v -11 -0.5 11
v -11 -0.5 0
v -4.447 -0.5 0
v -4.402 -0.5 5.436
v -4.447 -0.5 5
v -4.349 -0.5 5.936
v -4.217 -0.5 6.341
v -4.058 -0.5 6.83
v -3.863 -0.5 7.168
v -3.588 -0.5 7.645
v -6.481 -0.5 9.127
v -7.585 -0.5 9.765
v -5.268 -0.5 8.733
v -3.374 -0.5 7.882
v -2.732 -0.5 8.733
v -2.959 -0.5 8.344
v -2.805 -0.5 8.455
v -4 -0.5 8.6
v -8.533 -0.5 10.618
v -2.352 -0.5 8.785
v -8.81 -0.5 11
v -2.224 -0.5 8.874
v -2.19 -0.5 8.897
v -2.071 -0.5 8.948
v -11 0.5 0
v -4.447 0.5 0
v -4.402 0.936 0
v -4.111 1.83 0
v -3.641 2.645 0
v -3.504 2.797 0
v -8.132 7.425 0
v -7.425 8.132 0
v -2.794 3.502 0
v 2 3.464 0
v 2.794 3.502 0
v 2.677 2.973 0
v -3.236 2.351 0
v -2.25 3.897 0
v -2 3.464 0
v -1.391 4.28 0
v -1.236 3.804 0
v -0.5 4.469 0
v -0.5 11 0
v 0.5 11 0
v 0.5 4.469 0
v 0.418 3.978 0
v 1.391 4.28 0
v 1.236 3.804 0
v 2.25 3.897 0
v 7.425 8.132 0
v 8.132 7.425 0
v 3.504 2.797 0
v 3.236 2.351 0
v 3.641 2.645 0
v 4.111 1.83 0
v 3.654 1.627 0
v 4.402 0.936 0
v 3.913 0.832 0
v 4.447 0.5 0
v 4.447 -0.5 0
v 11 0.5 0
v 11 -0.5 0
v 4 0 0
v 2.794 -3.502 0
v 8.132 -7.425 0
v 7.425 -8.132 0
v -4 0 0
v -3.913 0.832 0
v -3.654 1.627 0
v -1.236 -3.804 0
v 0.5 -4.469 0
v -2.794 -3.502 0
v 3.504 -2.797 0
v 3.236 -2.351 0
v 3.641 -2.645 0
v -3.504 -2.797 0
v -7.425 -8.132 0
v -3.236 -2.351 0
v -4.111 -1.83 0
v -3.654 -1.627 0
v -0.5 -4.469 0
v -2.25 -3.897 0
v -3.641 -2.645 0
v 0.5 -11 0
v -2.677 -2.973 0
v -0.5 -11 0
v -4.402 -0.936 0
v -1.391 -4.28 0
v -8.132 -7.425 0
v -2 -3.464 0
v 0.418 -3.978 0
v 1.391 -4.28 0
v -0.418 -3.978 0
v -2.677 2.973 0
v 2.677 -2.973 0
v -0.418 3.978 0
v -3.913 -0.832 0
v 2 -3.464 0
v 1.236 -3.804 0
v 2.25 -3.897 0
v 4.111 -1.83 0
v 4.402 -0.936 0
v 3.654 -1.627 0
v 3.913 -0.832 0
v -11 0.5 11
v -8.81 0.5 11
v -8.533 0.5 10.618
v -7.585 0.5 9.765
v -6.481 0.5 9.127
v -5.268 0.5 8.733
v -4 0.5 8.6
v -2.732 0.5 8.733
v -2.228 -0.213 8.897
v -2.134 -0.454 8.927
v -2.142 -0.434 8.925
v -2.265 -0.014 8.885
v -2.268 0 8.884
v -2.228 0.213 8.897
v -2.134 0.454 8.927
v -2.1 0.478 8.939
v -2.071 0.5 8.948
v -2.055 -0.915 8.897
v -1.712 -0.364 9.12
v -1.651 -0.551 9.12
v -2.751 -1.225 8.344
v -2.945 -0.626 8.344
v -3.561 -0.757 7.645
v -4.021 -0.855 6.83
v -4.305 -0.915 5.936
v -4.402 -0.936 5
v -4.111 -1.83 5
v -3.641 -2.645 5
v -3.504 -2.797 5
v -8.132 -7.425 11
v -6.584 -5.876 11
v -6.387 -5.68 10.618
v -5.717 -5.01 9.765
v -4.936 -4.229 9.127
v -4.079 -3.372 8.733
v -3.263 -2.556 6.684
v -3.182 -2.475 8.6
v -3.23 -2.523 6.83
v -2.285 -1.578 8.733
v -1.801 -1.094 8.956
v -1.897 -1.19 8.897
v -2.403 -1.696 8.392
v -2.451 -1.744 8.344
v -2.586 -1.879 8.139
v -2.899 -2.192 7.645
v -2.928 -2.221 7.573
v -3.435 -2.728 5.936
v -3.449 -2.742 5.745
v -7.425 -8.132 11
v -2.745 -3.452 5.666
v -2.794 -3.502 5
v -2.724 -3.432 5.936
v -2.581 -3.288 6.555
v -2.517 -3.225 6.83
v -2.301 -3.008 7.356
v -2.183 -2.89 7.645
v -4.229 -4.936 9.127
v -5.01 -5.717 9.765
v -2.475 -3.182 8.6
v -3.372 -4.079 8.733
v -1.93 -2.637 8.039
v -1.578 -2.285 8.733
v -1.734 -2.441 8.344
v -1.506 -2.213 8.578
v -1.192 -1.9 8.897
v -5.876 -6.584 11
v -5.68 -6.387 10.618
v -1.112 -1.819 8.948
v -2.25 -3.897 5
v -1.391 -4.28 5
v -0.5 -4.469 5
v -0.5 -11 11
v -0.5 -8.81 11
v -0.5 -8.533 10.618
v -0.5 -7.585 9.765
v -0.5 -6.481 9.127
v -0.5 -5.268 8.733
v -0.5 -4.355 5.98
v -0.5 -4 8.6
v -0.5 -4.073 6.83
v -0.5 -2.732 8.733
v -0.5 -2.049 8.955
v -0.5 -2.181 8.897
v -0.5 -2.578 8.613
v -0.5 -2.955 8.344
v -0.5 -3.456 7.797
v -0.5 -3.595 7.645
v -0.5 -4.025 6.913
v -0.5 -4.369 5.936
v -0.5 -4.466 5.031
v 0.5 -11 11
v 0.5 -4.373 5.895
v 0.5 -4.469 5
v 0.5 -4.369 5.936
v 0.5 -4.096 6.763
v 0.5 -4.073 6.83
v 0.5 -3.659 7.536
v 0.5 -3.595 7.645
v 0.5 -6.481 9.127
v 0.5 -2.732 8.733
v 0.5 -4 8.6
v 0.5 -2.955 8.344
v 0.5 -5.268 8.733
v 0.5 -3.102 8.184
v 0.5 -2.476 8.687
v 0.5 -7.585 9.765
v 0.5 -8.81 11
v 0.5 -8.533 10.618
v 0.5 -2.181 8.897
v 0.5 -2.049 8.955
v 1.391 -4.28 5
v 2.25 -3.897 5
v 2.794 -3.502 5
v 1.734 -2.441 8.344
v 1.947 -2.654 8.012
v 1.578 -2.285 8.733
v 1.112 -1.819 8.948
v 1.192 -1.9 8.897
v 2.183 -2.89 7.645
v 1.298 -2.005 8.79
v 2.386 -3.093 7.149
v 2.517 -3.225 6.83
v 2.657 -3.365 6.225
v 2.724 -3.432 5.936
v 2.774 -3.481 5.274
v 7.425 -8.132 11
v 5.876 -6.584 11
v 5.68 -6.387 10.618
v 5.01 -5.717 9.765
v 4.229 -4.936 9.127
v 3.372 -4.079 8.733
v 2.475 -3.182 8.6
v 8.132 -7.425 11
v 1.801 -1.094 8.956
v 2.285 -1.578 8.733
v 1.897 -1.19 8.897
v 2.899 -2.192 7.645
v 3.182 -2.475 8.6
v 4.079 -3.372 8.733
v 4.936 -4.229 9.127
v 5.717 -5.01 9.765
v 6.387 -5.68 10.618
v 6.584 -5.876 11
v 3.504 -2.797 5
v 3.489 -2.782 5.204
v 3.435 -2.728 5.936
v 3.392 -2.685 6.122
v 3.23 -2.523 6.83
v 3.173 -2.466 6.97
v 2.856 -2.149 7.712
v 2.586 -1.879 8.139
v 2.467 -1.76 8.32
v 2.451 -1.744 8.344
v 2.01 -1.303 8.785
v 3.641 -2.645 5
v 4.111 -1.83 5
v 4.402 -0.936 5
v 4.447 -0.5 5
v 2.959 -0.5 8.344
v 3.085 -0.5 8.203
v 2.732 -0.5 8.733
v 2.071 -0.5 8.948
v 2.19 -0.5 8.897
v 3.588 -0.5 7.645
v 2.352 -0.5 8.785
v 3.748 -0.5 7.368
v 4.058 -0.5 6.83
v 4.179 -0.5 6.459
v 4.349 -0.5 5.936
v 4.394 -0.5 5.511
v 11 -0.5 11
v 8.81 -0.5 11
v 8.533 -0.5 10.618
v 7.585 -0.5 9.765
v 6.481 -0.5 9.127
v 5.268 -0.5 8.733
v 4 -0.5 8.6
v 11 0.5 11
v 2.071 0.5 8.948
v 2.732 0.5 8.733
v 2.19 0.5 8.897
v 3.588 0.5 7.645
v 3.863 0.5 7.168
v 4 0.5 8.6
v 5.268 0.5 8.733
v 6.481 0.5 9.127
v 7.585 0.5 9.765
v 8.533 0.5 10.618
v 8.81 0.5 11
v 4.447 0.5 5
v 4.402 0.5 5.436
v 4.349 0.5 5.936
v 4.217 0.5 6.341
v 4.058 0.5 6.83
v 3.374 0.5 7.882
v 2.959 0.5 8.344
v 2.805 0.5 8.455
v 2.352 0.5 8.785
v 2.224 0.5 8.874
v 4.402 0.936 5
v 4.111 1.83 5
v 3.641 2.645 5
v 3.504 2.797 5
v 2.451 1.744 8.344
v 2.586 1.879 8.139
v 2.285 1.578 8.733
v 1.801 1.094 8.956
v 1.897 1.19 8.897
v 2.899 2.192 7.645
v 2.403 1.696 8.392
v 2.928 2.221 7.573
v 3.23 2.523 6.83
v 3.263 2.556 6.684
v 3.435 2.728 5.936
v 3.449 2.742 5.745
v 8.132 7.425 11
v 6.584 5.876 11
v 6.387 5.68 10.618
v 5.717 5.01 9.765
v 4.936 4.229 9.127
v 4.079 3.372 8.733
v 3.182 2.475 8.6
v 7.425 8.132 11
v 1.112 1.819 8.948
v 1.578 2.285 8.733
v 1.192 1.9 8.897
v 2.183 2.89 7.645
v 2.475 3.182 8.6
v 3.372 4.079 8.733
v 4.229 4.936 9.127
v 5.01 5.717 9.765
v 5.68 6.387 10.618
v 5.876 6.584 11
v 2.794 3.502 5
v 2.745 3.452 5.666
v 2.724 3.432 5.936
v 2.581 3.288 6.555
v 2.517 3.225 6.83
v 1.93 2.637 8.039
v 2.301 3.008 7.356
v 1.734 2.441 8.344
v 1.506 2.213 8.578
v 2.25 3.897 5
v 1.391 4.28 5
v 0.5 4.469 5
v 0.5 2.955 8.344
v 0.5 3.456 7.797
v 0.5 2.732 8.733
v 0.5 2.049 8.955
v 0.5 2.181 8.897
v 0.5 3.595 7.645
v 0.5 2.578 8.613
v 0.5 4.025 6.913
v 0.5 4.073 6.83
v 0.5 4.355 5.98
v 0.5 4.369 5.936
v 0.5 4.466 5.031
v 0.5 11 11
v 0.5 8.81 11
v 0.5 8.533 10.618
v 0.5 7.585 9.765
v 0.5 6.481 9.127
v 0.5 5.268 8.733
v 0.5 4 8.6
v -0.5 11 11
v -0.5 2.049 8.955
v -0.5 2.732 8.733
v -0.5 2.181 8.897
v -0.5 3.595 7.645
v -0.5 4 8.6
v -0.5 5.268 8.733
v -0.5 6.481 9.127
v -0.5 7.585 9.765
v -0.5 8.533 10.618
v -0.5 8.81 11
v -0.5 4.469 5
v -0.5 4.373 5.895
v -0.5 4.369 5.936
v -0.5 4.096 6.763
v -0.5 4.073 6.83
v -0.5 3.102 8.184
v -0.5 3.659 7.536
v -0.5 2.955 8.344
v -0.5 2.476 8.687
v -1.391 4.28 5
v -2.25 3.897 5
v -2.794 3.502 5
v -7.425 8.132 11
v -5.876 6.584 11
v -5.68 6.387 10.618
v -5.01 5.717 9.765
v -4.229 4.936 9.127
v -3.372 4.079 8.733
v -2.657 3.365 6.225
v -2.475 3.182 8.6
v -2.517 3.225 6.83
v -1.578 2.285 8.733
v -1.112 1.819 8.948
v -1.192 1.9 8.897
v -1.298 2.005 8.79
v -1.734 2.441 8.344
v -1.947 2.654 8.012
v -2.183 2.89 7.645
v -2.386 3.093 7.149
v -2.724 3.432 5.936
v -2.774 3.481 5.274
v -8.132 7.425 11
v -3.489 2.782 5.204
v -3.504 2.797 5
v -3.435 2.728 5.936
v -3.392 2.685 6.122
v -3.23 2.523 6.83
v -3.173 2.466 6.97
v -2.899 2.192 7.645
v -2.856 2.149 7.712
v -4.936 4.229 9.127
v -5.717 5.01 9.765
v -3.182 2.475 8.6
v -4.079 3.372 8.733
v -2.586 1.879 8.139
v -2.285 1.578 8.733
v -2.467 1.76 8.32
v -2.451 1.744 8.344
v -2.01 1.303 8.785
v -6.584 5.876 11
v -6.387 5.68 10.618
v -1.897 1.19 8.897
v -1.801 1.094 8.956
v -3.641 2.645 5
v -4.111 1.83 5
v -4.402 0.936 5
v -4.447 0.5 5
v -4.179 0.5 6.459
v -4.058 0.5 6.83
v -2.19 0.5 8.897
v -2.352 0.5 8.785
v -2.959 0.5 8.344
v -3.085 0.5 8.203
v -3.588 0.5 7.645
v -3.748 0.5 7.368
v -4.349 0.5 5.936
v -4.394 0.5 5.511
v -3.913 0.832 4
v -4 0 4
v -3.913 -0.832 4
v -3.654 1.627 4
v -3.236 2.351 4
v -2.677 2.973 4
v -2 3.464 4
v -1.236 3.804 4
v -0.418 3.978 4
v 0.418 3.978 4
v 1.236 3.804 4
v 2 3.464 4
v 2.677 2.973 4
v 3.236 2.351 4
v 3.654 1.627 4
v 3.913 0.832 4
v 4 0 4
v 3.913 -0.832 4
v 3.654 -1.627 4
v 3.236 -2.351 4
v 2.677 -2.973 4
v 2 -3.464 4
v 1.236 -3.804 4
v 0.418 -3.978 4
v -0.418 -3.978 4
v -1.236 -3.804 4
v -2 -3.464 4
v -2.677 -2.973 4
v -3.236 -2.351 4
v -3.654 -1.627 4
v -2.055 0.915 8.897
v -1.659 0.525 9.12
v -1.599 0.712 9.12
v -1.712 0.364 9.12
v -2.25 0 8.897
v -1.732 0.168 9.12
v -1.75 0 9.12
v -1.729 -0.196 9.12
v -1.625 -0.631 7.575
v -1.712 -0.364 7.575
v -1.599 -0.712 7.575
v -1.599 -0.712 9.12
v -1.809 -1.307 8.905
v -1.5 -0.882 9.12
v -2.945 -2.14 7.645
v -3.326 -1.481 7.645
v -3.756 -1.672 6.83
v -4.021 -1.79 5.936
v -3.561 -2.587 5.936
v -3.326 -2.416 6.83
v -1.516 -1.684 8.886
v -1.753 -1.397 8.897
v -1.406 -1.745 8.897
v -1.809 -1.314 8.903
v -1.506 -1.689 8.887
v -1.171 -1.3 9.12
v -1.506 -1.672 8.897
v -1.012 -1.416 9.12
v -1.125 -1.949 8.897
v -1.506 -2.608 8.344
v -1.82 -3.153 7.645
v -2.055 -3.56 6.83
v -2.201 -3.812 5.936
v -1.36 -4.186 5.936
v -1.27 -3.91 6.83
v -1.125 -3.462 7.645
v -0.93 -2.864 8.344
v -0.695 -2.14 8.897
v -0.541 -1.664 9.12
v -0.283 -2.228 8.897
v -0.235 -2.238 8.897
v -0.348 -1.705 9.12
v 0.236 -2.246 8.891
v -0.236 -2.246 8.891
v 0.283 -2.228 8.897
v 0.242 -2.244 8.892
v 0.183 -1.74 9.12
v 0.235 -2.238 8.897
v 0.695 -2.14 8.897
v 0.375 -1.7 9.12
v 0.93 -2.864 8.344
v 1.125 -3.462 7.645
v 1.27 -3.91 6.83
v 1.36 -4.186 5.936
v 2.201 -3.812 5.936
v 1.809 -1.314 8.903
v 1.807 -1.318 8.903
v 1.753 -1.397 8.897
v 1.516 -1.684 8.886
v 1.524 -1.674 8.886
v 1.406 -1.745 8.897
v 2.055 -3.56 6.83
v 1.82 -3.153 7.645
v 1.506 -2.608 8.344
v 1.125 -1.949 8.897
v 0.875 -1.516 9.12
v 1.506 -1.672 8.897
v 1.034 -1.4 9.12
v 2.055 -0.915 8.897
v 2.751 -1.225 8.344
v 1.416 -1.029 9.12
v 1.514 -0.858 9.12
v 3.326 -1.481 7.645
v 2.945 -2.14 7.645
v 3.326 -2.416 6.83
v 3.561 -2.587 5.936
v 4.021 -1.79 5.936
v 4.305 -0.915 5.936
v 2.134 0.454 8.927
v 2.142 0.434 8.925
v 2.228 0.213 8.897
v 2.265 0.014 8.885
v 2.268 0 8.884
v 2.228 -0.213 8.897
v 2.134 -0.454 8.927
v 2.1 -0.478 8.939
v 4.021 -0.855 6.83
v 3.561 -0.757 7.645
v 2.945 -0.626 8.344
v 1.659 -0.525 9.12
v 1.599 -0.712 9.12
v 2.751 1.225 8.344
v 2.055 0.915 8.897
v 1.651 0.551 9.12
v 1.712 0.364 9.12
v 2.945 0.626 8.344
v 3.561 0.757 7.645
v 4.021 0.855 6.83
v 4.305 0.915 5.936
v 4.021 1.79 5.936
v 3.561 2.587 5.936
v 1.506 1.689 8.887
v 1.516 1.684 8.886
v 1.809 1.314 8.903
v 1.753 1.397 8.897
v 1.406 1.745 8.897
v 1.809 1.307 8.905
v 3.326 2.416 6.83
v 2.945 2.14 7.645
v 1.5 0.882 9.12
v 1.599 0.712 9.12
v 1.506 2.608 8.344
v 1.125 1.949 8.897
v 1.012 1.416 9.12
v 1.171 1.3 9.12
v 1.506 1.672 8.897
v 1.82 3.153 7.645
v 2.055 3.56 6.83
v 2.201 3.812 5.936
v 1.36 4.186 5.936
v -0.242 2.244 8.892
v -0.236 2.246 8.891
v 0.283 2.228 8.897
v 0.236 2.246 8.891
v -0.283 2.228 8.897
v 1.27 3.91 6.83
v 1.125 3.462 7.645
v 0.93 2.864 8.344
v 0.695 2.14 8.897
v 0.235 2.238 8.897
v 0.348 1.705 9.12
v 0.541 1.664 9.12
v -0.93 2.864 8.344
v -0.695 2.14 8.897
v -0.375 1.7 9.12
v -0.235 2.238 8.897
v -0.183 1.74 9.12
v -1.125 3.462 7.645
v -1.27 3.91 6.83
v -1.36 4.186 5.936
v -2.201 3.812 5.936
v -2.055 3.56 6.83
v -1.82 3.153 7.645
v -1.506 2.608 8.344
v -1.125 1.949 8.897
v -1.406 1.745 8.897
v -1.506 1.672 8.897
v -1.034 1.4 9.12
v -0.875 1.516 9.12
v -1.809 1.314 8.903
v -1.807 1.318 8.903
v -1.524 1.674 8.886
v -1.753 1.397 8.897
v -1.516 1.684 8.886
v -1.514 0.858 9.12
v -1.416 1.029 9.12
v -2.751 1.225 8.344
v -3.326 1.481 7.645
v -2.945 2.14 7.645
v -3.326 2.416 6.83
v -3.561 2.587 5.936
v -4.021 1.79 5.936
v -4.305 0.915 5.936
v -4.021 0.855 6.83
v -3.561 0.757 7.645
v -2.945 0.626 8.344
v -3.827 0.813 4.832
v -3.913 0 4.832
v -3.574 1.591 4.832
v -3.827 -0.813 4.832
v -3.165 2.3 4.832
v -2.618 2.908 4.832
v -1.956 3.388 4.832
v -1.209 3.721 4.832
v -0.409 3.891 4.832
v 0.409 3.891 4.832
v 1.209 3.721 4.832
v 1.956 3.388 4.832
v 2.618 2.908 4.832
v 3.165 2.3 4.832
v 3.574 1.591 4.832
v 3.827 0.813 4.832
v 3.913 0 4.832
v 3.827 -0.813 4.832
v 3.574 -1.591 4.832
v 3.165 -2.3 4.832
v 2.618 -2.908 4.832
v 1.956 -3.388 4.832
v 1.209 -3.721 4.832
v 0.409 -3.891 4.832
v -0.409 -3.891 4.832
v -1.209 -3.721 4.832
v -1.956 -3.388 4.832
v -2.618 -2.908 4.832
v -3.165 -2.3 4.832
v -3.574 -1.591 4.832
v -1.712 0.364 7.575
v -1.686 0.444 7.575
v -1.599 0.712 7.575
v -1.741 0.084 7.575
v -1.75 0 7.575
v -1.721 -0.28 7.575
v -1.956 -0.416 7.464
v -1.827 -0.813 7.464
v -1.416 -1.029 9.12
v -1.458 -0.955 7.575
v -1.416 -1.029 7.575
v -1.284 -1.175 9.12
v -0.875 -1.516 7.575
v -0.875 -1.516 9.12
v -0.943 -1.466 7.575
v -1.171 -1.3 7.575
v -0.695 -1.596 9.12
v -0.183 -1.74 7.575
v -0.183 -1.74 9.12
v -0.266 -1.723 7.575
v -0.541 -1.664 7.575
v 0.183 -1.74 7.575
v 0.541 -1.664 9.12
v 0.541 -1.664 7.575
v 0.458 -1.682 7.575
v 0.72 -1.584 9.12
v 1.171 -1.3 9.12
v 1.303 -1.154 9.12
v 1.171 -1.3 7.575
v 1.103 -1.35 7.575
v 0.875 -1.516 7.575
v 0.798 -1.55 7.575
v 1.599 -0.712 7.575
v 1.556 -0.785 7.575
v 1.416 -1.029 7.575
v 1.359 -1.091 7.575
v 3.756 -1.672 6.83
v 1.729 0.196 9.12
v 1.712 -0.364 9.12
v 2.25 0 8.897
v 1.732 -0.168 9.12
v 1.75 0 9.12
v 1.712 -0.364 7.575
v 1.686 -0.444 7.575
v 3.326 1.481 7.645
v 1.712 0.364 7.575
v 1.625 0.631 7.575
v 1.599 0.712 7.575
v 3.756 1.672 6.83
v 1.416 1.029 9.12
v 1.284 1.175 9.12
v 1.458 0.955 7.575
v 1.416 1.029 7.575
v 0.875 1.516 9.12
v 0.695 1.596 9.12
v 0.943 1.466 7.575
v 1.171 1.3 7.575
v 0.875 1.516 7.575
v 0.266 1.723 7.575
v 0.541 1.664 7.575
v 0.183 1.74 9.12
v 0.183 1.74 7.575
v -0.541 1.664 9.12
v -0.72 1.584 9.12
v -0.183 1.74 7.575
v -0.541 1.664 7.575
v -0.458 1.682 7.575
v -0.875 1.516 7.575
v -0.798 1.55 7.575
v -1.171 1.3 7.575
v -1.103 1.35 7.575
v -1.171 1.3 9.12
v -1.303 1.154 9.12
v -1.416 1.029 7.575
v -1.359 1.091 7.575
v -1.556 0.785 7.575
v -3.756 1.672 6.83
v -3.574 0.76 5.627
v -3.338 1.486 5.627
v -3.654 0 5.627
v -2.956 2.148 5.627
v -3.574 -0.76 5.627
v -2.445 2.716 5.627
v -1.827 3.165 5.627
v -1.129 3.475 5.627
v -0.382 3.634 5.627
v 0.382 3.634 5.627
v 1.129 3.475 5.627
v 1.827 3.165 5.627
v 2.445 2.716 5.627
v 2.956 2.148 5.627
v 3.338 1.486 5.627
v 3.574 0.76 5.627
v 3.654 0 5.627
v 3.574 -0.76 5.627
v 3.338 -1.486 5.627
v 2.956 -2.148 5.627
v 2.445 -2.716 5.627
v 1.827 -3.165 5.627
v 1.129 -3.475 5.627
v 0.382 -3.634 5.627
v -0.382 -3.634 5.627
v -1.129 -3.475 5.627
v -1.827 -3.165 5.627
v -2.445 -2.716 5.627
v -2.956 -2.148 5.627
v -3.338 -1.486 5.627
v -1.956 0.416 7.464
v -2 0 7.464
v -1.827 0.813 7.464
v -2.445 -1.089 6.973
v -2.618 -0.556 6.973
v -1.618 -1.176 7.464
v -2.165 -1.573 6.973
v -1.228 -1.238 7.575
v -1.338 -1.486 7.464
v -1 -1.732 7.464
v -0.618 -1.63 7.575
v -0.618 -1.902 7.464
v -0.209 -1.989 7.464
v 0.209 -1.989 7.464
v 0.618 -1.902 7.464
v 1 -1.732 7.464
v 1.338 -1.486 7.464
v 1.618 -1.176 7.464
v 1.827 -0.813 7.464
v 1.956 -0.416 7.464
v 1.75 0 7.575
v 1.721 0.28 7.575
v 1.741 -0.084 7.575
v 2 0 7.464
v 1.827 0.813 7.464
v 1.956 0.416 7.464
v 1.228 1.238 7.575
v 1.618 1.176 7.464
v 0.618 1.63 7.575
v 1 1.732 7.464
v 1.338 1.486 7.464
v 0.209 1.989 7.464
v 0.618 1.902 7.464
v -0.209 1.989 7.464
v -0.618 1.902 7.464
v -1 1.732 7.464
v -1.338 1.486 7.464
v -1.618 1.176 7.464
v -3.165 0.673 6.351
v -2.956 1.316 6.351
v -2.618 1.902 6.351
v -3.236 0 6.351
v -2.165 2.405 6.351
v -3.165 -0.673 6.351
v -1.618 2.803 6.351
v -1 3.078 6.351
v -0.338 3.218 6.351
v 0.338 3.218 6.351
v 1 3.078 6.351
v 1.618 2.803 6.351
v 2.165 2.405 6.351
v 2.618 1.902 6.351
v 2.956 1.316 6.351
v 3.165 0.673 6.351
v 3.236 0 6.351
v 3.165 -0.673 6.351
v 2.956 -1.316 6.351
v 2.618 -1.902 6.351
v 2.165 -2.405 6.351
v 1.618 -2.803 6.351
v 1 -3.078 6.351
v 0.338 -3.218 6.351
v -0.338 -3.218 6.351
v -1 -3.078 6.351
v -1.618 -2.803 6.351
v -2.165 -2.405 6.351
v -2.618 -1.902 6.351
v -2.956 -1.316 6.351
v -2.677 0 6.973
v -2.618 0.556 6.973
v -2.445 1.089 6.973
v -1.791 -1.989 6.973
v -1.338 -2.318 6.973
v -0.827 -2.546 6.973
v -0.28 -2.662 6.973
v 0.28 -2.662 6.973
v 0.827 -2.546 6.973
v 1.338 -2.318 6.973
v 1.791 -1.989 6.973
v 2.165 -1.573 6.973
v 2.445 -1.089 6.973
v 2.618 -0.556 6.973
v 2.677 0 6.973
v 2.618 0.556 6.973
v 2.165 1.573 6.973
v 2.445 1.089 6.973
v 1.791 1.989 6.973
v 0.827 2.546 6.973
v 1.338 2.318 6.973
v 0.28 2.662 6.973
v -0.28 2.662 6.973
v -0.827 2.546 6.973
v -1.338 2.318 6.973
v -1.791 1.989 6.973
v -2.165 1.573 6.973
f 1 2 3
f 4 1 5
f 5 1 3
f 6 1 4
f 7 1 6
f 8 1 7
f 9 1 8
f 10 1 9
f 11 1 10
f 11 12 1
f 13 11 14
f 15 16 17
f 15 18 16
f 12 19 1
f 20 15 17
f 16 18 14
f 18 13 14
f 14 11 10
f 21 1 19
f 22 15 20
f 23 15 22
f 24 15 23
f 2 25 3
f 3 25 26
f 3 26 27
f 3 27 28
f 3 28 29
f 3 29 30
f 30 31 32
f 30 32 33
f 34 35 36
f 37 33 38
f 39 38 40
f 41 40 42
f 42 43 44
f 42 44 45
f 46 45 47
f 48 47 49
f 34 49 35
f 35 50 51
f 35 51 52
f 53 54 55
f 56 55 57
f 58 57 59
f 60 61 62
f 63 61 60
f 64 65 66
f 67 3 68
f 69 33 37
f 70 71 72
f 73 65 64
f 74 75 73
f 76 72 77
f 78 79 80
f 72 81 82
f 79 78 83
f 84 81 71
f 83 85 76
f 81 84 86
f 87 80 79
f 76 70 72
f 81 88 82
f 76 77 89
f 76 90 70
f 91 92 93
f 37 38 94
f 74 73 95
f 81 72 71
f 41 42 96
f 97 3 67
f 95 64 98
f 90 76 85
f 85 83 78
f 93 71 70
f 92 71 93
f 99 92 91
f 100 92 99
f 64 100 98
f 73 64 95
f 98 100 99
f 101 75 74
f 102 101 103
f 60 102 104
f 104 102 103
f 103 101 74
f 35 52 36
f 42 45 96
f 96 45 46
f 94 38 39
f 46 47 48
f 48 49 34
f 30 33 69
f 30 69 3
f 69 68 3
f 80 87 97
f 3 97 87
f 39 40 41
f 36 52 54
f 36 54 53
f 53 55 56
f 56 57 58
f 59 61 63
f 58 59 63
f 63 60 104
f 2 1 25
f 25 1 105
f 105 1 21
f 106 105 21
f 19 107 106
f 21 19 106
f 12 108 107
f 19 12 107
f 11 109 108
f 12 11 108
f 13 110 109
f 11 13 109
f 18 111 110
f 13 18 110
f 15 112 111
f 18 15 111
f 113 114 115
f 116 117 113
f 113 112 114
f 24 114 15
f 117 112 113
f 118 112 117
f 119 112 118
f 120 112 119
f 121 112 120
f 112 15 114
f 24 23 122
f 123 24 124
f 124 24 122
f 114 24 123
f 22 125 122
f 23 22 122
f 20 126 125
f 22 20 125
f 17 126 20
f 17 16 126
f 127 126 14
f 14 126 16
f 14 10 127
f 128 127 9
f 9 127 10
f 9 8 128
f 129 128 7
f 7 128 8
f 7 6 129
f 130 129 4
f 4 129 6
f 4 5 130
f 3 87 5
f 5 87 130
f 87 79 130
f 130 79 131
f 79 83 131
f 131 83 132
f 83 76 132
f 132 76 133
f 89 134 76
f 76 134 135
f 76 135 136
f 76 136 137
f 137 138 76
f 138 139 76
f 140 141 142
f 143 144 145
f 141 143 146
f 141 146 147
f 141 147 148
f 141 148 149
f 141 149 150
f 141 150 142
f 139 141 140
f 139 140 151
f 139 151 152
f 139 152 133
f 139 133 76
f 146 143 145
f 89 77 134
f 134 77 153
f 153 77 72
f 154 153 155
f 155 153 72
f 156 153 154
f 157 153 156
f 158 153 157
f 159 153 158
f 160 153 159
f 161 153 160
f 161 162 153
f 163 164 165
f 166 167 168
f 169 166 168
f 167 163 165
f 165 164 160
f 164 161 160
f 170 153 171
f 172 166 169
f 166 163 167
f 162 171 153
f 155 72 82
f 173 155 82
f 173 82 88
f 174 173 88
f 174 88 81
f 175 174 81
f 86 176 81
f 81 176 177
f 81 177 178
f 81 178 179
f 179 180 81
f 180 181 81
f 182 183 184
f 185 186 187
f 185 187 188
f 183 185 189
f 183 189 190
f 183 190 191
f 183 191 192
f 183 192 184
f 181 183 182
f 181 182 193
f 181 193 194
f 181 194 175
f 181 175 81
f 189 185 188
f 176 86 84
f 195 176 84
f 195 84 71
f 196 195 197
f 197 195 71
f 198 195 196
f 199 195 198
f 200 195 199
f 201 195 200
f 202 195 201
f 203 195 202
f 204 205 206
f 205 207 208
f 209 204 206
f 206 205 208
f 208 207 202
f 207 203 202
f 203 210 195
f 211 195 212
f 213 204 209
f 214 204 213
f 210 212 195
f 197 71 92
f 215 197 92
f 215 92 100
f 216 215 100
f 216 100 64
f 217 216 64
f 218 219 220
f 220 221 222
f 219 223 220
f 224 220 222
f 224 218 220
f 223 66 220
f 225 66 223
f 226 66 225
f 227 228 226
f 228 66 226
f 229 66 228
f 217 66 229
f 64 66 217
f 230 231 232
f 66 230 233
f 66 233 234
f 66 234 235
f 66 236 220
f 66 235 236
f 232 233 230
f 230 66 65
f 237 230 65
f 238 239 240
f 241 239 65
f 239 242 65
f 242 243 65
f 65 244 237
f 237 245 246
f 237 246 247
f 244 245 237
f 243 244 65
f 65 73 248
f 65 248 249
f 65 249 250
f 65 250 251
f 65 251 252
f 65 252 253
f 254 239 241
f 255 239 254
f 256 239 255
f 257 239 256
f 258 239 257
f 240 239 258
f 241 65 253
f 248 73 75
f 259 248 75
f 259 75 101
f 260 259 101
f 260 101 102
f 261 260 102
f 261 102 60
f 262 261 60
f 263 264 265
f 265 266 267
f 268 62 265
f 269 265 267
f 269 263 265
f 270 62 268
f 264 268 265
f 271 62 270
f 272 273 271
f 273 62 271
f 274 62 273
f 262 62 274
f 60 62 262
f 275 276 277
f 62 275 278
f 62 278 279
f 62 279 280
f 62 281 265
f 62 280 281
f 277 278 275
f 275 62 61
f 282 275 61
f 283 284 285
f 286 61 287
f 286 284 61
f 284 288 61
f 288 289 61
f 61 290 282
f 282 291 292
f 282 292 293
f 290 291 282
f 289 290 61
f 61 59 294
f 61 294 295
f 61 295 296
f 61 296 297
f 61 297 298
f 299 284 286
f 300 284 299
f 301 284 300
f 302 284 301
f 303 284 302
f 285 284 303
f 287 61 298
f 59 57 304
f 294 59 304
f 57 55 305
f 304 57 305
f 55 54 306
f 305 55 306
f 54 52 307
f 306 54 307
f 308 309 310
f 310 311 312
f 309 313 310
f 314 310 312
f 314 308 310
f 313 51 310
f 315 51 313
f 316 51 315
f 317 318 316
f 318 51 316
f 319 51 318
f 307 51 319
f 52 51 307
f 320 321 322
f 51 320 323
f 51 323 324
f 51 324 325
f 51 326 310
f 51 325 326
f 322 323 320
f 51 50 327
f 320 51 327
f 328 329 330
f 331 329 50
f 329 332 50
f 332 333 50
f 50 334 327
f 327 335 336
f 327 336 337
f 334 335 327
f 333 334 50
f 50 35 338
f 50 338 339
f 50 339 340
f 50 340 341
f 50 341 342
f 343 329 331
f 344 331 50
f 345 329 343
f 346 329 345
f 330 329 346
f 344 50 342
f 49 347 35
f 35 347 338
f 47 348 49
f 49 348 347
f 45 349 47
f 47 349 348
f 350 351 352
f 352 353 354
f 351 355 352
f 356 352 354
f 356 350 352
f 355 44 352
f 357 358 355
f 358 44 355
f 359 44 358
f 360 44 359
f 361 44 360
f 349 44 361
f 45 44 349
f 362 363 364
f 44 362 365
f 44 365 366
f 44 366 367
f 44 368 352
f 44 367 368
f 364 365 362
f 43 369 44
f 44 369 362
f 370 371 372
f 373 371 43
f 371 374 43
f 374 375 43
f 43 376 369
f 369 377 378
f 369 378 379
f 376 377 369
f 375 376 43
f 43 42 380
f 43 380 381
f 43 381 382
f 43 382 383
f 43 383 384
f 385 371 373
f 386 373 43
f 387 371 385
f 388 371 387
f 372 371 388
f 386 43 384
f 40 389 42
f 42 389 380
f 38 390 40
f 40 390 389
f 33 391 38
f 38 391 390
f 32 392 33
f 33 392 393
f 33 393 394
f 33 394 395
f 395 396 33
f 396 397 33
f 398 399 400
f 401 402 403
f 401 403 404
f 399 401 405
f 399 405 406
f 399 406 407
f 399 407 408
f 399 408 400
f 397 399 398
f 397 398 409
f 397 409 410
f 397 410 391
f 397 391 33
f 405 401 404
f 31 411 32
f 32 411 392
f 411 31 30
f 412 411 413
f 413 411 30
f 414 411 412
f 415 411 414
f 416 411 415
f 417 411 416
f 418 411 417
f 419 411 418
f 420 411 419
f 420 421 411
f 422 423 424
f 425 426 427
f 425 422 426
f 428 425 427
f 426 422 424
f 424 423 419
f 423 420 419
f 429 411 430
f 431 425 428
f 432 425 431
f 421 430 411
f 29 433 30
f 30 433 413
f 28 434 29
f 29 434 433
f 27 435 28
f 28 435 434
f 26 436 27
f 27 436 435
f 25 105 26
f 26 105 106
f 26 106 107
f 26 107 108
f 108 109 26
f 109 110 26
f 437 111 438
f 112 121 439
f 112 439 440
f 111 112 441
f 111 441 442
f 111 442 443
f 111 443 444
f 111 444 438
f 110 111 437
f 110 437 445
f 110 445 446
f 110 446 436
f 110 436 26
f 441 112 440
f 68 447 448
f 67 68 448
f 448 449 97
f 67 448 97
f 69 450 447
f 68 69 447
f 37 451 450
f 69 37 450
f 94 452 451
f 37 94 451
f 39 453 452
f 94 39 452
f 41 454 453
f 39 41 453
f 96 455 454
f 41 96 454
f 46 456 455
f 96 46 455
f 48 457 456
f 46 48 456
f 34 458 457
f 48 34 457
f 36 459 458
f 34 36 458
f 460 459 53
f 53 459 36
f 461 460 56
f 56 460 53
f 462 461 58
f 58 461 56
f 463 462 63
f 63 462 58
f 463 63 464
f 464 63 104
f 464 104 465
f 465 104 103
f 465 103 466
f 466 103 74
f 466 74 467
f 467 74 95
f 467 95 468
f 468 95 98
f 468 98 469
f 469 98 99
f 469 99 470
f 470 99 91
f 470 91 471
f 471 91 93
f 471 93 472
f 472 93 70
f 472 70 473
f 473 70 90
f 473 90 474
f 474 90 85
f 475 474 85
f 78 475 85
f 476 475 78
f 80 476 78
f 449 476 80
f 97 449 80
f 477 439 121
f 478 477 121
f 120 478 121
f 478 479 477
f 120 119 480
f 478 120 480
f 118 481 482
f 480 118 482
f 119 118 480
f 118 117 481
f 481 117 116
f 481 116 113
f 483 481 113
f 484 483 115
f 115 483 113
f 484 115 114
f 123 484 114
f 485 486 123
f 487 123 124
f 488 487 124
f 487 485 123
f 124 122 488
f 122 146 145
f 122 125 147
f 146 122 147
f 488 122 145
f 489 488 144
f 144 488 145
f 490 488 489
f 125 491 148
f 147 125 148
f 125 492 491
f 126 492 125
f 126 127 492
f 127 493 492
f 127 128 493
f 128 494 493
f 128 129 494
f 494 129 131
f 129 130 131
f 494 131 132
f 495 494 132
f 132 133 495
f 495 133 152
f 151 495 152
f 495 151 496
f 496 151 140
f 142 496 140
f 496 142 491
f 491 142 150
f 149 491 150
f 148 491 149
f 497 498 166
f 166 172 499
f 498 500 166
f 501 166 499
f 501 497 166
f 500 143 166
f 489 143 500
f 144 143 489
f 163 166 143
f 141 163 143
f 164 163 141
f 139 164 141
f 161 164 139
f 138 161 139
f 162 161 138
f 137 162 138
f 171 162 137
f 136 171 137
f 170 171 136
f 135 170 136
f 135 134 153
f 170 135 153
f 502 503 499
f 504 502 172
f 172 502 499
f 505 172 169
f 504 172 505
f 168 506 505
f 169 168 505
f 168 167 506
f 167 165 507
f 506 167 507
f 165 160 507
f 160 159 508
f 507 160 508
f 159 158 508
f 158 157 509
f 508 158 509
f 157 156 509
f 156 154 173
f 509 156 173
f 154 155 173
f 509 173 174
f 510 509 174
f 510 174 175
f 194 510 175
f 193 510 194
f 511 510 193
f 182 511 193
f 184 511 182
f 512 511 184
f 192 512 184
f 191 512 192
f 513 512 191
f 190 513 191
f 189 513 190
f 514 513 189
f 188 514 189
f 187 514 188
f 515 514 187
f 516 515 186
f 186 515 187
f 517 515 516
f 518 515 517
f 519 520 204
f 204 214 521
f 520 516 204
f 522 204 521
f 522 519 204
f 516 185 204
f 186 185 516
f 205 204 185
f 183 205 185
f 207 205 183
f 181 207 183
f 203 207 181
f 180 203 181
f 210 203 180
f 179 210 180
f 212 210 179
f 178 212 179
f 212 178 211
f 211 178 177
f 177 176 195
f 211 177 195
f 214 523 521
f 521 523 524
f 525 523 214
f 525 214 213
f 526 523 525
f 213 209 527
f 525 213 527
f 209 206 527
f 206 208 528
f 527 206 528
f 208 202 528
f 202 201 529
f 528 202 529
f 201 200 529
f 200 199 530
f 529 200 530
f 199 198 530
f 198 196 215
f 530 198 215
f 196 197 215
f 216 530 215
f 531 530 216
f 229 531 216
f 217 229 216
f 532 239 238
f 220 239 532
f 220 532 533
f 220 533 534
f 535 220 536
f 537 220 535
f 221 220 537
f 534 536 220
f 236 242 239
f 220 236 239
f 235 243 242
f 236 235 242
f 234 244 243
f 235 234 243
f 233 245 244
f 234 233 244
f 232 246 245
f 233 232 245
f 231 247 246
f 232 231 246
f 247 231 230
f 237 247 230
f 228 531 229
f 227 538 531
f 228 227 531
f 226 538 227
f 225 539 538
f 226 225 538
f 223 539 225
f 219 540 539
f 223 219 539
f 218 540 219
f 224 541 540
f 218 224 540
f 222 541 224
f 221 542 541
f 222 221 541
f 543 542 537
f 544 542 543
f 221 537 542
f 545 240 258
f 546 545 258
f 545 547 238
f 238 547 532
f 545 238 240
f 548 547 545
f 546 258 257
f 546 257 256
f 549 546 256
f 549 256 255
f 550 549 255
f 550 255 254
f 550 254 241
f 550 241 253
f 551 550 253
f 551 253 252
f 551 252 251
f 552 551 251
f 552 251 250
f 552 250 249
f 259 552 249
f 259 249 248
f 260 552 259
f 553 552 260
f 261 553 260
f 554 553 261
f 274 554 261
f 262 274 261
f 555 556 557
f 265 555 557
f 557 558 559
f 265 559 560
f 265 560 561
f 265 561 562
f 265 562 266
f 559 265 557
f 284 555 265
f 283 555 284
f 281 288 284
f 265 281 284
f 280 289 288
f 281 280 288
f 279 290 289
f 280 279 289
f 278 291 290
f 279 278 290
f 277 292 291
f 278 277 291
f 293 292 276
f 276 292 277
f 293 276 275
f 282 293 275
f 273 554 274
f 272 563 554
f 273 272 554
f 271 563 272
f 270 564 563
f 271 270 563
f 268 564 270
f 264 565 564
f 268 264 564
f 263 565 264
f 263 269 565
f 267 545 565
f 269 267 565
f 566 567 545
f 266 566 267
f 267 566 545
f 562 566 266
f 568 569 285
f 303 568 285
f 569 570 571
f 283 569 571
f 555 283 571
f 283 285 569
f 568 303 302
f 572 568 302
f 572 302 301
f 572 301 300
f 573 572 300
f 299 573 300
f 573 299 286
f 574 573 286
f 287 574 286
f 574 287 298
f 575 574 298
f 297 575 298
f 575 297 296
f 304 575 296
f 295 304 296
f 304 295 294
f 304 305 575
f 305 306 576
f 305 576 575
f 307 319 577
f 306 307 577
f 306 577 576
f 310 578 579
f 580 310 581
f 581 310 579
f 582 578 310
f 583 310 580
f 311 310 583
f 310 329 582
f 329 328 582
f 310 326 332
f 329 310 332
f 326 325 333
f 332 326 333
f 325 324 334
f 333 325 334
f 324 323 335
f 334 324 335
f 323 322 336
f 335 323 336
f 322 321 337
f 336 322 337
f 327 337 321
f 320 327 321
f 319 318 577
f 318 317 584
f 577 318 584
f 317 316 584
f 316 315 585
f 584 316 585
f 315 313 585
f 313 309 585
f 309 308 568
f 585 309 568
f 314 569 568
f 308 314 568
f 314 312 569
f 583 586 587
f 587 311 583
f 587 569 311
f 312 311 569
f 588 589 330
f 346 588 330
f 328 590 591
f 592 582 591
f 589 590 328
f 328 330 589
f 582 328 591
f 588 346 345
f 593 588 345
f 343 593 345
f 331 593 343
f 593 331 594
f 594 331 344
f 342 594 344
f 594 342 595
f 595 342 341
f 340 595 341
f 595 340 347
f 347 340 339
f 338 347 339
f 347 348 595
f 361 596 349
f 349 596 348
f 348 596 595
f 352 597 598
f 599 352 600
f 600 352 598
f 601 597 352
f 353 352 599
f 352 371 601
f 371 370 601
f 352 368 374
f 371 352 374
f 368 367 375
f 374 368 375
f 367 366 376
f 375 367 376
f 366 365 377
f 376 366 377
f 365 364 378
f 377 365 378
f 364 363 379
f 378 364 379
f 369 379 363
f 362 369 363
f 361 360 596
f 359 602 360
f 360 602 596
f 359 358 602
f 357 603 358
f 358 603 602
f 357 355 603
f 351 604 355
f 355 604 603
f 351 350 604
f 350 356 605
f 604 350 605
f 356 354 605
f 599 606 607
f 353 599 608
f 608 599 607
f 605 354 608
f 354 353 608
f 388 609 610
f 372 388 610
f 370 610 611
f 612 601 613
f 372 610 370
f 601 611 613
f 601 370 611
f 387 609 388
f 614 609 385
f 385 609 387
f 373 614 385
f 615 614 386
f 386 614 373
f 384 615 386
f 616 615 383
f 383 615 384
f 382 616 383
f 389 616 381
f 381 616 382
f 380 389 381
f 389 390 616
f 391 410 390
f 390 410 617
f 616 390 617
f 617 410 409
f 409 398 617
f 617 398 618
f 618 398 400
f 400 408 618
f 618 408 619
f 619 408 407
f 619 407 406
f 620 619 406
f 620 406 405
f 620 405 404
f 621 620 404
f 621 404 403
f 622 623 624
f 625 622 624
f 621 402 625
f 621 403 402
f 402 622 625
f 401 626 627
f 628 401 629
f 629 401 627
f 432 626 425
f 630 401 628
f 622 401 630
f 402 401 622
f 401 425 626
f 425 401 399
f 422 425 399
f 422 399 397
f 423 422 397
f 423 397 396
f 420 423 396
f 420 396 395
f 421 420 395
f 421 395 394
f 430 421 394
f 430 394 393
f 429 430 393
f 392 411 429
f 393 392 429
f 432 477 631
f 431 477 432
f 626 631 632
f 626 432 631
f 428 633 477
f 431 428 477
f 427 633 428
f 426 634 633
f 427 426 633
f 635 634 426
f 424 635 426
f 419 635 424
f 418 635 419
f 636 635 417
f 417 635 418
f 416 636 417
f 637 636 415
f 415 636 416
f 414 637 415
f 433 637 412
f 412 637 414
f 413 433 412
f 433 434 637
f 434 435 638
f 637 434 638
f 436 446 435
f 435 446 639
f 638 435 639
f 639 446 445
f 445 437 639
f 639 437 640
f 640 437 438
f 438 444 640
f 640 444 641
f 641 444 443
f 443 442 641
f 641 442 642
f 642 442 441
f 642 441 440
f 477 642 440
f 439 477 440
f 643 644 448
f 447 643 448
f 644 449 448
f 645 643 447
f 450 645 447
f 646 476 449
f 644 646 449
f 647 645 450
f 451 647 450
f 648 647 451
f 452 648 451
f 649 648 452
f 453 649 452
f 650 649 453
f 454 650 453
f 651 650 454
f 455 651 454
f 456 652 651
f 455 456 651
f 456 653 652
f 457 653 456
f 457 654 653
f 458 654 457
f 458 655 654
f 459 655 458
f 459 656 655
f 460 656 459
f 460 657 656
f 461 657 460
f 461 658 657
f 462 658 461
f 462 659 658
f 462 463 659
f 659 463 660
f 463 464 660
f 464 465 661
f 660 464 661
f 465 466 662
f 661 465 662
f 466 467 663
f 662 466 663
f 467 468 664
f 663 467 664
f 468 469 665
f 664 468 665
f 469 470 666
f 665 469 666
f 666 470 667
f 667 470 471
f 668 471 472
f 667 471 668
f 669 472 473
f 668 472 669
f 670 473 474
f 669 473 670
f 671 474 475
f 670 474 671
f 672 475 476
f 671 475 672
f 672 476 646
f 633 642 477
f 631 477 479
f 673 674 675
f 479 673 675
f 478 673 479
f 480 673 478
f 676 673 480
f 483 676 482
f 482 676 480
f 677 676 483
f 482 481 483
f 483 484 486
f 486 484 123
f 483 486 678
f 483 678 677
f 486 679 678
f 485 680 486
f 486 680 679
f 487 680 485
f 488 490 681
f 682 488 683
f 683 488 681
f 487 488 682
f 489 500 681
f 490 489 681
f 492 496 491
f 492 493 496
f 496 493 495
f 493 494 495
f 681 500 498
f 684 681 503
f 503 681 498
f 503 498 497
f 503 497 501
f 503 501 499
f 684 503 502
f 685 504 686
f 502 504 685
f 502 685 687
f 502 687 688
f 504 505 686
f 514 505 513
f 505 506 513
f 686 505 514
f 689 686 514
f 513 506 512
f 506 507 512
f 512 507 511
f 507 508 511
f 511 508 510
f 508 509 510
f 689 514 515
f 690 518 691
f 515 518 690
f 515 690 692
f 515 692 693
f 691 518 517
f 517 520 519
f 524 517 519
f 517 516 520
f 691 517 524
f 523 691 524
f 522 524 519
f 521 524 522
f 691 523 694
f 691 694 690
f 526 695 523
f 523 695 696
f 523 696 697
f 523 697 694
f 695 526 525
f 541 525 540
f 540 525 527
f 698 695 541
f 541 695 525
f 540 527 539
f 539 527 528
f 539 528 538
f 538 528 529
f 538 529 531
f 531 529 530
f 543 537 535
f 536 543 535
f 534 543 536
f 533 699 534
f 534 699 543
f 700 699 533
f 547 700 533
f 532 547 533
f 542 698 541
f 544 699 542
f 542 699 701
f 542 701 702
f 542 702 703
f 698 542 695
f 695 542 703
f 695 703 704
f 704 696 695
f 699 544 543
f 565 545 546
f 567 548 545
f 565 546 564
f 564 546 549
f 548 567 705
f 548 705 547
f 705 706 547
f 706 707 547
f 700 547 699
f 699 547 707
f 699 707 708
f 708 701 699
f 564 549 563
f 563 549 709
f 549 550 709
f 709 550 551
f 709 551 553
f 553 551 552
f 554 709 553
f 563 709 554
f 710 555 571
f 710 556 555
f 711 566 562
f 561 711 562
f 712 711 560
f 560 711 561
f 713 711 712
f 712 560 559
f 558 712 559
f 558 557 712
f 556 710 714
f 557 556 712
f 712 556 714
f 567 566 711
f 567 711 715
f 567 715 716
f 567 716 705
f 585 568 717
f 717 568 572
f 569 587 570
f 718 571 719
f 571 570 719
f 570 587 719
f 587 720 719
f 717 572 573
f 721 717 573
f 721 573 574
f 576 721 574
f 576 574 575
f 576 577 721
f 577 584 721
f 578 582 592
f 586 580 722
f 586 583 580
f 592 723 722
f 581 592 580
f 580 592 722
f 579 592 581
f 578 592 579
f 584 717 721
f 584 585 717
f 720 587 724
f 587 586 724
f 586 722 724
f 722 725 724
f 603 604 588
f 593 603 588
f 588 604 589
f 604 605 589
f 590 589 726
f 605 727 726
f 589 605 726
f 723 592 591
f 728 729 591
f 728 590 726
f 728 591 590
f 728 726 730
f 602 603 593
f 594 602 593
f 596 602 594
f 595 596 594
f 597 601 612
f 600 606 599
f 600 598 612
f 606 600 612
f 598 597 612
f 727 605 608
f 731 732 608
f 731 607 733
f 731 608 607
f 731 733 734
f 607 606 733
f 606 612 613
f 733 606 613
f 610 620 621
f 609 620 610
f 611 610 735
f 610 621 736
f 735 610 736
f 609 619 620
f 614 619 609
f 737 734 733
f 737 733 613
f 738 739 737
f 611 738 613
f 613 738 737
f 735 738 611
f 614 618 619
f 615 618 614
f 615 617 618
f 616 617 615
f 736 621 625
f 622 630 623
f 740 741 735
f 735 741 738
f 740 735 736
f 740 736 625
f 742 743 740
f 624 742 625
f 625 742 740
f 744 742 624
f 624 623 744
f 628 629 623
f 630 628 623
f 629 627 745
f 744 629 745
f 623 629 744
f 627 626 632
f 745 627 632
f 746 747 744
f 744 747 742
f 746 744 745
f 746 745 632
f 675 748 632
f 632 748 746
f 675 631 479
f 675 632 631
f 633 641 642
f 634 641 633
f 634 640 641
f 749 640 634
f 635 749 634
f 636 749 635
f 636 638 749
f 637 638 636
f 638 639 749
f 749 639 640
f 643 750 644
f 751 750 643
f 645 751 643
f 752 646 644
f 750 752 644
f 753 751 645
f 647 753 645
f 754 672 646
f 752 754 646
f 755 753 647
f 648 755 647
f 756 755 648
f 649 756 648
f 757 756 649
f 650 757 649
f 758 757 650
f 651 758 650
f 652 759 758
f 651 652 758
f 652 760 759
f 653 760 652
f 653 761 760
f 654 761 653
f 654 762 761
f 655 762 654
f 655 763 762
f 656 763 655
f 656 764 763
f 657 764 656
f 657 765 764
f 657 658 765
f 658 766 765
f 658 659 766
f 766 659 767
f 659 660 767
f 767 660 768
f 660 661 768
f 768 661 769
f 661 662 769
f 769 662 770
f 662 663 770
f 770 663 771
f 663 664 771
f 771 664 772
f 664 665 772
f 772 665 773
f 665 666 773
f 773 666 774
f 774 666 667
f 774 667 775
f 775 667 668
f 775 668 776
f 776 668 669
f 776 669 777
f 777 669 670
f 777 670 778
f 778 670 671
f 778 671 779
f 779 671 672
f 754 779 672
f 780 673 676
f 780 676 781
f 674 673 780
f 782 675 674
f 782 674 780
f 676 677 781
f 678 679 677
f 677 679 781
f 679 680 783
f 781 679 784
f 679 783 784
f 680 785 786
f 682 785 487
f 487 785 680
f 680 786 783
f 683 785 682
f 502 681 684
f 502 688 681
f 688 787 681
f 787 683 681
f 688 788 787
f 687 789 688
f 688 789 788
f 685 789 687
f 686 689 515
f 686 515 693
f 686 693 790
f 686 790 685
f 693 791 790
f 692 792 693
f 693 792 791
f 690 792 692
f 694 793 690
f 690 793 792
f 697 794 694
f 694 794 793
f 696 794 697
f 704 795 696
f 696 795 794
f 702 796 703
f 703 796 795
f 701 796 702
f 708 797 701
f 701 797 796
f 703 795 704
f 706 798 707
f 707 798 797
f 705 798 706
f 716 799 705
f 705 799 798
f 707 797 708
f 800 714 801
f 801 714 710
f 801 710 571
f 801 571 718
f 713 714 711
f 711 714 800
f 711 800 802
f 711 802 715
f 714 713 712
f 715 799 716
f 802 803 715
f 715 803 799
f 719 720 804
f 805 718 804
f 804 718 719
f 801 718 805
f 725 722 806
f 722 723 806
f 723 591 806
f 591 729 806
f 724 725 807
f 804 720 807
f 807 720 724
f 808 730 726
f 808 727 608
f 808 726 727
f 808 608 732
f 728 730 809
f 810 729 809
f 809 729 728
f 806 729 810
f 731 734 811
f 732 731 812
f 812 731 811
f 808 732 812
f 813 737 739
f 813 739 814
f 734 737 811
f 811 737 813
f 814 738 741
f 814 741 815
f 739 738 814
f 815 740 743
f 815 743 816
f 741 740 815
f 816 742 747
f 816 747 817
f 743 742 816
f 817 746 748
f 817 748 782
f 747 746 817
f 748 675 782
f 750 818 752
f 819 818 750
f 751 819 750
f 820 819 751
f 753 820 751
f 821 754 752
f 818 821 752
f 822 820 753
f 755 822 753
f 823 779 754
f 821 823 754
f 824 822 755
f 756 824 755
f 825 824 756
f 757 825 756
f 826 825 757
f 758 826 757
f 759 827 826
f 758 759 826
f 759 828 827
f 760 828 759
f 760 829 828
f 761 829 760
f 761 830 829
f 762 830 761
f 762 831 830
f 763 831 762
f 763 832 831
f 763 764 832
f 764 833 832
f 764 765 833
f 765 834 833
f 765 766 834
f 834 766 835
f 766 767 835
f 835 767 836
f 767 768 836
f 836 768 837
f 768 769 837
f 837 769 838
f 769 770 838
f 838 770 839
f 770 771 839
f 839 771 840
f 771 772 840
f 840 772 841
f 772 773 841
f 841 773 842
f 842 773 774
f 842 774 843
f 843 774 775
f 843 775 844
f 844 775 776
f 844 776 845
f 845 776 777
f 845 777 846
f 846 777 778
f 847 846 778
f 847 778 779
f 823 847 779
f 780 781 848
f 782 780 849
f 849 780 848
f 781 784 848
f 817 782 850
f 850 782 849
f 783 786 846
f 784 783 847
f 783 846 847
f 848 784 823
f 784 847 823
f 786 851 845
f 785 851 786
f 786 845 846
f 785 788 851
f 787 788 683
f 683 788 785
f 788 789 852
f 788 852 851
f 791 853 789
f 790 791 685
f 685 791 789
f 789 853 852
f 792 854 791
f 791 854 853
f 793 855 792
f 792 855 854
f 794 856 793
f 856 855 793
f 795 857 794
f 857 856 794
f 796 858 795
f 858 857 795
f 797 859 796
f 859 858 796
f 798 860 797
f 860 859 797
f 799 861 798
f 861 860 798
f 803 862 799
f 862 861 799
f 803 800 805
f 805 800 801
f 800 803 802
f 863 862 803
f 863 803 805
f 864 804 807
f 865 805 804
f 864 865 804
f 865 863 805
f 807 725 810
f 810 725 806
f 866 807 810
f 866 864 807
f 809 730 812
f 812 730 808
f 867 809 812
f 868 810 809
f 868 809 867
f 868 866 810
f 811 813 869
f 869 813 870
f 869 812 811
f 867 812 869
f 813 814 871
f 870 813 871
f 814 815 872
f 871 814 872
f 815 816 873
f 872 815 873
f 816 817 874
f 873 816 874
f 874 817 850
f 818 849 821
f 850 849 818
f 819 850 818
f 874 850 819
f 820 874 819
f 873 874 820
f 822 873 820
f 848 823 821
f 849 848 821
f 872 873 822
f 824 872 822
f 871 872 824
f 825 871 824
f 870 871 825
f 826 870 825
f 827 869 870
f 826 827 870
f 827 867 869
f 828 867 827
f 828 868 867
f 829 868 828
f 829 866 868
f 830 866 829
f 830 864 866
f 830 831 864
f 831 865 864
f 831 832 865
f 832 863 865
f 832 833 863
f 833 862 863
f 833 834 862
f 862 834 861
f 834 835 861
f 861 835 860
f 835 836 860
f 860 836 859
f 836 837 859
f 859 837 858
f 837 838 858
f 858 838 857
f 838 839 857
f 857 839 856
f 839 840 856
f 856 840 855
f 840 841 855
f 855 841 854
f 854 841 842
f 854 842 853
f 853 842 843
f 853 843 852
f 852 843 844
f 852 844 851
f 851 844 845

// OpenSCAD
$fs = 0.1;

magnet_h_0 = 6.37/2;
magnet_r_0 = 6.33/2;
bearing_r_0 = 3.24/2;

magnet_h = 8/2;
magnet_r = 8/2;
bearing_r = 3.5/2;

module capsule() {

	union() {
		// Body
		translate ([0, 0, 0]) {
			cylinder(h = magnet_h + 1, r = magnet_h + 0.5);
		}

		// Endcap
		difference() {
	 		translate ([0, 0, magnet_h + 1]) {
				sphere(r = magnet_h + 0.5);
			}
	 		translate ([0, 0, -20]) {
				cylinder(h = magnet_h + 20, r = magnet_h + 3);
			}
		}

	}
}

module wing() {

	difference() {
		translate ([-0.5, 0, 0]) {
			cube(size = [1, 11, 11]);
		}
		translate ([0, 4, 14.7]) { rotate ([0, 90, 0]) {
			cylinder(h = 5, r = 6.1, center = true);
		} }
	}
}


module magneetin_kolo() {
	union() {
		// Magneetti
		translate ([0, 0, -1]) {
			cylinder(h = magnet_h + 1, r = magnet_r);
		}

		// Pyöristys
		translate ([0, 0, magnet_h]) {
			sphere(r = magnet_r);
		}

		// Laakeri
		translate ([0, 0, -1]) {
			cylinder(h = magnet_h + 11, r = bearing_r);
		}
	}



}


module main() {

	// Magneetti
	% cylinder(h = magnet_h_0, r = magnet_r_0);


	difference() {
		union() {
			for (i = [0:7]) {
				translate ([0, 0, 0]) { rotate ([0, 0, i*45]) {
					wing();
				} }

			}

			translate ([0, 0, 0]) {
				capsule(4, 4.5);
			}
		}

		magneetin_kolo();
	}

}

main();
